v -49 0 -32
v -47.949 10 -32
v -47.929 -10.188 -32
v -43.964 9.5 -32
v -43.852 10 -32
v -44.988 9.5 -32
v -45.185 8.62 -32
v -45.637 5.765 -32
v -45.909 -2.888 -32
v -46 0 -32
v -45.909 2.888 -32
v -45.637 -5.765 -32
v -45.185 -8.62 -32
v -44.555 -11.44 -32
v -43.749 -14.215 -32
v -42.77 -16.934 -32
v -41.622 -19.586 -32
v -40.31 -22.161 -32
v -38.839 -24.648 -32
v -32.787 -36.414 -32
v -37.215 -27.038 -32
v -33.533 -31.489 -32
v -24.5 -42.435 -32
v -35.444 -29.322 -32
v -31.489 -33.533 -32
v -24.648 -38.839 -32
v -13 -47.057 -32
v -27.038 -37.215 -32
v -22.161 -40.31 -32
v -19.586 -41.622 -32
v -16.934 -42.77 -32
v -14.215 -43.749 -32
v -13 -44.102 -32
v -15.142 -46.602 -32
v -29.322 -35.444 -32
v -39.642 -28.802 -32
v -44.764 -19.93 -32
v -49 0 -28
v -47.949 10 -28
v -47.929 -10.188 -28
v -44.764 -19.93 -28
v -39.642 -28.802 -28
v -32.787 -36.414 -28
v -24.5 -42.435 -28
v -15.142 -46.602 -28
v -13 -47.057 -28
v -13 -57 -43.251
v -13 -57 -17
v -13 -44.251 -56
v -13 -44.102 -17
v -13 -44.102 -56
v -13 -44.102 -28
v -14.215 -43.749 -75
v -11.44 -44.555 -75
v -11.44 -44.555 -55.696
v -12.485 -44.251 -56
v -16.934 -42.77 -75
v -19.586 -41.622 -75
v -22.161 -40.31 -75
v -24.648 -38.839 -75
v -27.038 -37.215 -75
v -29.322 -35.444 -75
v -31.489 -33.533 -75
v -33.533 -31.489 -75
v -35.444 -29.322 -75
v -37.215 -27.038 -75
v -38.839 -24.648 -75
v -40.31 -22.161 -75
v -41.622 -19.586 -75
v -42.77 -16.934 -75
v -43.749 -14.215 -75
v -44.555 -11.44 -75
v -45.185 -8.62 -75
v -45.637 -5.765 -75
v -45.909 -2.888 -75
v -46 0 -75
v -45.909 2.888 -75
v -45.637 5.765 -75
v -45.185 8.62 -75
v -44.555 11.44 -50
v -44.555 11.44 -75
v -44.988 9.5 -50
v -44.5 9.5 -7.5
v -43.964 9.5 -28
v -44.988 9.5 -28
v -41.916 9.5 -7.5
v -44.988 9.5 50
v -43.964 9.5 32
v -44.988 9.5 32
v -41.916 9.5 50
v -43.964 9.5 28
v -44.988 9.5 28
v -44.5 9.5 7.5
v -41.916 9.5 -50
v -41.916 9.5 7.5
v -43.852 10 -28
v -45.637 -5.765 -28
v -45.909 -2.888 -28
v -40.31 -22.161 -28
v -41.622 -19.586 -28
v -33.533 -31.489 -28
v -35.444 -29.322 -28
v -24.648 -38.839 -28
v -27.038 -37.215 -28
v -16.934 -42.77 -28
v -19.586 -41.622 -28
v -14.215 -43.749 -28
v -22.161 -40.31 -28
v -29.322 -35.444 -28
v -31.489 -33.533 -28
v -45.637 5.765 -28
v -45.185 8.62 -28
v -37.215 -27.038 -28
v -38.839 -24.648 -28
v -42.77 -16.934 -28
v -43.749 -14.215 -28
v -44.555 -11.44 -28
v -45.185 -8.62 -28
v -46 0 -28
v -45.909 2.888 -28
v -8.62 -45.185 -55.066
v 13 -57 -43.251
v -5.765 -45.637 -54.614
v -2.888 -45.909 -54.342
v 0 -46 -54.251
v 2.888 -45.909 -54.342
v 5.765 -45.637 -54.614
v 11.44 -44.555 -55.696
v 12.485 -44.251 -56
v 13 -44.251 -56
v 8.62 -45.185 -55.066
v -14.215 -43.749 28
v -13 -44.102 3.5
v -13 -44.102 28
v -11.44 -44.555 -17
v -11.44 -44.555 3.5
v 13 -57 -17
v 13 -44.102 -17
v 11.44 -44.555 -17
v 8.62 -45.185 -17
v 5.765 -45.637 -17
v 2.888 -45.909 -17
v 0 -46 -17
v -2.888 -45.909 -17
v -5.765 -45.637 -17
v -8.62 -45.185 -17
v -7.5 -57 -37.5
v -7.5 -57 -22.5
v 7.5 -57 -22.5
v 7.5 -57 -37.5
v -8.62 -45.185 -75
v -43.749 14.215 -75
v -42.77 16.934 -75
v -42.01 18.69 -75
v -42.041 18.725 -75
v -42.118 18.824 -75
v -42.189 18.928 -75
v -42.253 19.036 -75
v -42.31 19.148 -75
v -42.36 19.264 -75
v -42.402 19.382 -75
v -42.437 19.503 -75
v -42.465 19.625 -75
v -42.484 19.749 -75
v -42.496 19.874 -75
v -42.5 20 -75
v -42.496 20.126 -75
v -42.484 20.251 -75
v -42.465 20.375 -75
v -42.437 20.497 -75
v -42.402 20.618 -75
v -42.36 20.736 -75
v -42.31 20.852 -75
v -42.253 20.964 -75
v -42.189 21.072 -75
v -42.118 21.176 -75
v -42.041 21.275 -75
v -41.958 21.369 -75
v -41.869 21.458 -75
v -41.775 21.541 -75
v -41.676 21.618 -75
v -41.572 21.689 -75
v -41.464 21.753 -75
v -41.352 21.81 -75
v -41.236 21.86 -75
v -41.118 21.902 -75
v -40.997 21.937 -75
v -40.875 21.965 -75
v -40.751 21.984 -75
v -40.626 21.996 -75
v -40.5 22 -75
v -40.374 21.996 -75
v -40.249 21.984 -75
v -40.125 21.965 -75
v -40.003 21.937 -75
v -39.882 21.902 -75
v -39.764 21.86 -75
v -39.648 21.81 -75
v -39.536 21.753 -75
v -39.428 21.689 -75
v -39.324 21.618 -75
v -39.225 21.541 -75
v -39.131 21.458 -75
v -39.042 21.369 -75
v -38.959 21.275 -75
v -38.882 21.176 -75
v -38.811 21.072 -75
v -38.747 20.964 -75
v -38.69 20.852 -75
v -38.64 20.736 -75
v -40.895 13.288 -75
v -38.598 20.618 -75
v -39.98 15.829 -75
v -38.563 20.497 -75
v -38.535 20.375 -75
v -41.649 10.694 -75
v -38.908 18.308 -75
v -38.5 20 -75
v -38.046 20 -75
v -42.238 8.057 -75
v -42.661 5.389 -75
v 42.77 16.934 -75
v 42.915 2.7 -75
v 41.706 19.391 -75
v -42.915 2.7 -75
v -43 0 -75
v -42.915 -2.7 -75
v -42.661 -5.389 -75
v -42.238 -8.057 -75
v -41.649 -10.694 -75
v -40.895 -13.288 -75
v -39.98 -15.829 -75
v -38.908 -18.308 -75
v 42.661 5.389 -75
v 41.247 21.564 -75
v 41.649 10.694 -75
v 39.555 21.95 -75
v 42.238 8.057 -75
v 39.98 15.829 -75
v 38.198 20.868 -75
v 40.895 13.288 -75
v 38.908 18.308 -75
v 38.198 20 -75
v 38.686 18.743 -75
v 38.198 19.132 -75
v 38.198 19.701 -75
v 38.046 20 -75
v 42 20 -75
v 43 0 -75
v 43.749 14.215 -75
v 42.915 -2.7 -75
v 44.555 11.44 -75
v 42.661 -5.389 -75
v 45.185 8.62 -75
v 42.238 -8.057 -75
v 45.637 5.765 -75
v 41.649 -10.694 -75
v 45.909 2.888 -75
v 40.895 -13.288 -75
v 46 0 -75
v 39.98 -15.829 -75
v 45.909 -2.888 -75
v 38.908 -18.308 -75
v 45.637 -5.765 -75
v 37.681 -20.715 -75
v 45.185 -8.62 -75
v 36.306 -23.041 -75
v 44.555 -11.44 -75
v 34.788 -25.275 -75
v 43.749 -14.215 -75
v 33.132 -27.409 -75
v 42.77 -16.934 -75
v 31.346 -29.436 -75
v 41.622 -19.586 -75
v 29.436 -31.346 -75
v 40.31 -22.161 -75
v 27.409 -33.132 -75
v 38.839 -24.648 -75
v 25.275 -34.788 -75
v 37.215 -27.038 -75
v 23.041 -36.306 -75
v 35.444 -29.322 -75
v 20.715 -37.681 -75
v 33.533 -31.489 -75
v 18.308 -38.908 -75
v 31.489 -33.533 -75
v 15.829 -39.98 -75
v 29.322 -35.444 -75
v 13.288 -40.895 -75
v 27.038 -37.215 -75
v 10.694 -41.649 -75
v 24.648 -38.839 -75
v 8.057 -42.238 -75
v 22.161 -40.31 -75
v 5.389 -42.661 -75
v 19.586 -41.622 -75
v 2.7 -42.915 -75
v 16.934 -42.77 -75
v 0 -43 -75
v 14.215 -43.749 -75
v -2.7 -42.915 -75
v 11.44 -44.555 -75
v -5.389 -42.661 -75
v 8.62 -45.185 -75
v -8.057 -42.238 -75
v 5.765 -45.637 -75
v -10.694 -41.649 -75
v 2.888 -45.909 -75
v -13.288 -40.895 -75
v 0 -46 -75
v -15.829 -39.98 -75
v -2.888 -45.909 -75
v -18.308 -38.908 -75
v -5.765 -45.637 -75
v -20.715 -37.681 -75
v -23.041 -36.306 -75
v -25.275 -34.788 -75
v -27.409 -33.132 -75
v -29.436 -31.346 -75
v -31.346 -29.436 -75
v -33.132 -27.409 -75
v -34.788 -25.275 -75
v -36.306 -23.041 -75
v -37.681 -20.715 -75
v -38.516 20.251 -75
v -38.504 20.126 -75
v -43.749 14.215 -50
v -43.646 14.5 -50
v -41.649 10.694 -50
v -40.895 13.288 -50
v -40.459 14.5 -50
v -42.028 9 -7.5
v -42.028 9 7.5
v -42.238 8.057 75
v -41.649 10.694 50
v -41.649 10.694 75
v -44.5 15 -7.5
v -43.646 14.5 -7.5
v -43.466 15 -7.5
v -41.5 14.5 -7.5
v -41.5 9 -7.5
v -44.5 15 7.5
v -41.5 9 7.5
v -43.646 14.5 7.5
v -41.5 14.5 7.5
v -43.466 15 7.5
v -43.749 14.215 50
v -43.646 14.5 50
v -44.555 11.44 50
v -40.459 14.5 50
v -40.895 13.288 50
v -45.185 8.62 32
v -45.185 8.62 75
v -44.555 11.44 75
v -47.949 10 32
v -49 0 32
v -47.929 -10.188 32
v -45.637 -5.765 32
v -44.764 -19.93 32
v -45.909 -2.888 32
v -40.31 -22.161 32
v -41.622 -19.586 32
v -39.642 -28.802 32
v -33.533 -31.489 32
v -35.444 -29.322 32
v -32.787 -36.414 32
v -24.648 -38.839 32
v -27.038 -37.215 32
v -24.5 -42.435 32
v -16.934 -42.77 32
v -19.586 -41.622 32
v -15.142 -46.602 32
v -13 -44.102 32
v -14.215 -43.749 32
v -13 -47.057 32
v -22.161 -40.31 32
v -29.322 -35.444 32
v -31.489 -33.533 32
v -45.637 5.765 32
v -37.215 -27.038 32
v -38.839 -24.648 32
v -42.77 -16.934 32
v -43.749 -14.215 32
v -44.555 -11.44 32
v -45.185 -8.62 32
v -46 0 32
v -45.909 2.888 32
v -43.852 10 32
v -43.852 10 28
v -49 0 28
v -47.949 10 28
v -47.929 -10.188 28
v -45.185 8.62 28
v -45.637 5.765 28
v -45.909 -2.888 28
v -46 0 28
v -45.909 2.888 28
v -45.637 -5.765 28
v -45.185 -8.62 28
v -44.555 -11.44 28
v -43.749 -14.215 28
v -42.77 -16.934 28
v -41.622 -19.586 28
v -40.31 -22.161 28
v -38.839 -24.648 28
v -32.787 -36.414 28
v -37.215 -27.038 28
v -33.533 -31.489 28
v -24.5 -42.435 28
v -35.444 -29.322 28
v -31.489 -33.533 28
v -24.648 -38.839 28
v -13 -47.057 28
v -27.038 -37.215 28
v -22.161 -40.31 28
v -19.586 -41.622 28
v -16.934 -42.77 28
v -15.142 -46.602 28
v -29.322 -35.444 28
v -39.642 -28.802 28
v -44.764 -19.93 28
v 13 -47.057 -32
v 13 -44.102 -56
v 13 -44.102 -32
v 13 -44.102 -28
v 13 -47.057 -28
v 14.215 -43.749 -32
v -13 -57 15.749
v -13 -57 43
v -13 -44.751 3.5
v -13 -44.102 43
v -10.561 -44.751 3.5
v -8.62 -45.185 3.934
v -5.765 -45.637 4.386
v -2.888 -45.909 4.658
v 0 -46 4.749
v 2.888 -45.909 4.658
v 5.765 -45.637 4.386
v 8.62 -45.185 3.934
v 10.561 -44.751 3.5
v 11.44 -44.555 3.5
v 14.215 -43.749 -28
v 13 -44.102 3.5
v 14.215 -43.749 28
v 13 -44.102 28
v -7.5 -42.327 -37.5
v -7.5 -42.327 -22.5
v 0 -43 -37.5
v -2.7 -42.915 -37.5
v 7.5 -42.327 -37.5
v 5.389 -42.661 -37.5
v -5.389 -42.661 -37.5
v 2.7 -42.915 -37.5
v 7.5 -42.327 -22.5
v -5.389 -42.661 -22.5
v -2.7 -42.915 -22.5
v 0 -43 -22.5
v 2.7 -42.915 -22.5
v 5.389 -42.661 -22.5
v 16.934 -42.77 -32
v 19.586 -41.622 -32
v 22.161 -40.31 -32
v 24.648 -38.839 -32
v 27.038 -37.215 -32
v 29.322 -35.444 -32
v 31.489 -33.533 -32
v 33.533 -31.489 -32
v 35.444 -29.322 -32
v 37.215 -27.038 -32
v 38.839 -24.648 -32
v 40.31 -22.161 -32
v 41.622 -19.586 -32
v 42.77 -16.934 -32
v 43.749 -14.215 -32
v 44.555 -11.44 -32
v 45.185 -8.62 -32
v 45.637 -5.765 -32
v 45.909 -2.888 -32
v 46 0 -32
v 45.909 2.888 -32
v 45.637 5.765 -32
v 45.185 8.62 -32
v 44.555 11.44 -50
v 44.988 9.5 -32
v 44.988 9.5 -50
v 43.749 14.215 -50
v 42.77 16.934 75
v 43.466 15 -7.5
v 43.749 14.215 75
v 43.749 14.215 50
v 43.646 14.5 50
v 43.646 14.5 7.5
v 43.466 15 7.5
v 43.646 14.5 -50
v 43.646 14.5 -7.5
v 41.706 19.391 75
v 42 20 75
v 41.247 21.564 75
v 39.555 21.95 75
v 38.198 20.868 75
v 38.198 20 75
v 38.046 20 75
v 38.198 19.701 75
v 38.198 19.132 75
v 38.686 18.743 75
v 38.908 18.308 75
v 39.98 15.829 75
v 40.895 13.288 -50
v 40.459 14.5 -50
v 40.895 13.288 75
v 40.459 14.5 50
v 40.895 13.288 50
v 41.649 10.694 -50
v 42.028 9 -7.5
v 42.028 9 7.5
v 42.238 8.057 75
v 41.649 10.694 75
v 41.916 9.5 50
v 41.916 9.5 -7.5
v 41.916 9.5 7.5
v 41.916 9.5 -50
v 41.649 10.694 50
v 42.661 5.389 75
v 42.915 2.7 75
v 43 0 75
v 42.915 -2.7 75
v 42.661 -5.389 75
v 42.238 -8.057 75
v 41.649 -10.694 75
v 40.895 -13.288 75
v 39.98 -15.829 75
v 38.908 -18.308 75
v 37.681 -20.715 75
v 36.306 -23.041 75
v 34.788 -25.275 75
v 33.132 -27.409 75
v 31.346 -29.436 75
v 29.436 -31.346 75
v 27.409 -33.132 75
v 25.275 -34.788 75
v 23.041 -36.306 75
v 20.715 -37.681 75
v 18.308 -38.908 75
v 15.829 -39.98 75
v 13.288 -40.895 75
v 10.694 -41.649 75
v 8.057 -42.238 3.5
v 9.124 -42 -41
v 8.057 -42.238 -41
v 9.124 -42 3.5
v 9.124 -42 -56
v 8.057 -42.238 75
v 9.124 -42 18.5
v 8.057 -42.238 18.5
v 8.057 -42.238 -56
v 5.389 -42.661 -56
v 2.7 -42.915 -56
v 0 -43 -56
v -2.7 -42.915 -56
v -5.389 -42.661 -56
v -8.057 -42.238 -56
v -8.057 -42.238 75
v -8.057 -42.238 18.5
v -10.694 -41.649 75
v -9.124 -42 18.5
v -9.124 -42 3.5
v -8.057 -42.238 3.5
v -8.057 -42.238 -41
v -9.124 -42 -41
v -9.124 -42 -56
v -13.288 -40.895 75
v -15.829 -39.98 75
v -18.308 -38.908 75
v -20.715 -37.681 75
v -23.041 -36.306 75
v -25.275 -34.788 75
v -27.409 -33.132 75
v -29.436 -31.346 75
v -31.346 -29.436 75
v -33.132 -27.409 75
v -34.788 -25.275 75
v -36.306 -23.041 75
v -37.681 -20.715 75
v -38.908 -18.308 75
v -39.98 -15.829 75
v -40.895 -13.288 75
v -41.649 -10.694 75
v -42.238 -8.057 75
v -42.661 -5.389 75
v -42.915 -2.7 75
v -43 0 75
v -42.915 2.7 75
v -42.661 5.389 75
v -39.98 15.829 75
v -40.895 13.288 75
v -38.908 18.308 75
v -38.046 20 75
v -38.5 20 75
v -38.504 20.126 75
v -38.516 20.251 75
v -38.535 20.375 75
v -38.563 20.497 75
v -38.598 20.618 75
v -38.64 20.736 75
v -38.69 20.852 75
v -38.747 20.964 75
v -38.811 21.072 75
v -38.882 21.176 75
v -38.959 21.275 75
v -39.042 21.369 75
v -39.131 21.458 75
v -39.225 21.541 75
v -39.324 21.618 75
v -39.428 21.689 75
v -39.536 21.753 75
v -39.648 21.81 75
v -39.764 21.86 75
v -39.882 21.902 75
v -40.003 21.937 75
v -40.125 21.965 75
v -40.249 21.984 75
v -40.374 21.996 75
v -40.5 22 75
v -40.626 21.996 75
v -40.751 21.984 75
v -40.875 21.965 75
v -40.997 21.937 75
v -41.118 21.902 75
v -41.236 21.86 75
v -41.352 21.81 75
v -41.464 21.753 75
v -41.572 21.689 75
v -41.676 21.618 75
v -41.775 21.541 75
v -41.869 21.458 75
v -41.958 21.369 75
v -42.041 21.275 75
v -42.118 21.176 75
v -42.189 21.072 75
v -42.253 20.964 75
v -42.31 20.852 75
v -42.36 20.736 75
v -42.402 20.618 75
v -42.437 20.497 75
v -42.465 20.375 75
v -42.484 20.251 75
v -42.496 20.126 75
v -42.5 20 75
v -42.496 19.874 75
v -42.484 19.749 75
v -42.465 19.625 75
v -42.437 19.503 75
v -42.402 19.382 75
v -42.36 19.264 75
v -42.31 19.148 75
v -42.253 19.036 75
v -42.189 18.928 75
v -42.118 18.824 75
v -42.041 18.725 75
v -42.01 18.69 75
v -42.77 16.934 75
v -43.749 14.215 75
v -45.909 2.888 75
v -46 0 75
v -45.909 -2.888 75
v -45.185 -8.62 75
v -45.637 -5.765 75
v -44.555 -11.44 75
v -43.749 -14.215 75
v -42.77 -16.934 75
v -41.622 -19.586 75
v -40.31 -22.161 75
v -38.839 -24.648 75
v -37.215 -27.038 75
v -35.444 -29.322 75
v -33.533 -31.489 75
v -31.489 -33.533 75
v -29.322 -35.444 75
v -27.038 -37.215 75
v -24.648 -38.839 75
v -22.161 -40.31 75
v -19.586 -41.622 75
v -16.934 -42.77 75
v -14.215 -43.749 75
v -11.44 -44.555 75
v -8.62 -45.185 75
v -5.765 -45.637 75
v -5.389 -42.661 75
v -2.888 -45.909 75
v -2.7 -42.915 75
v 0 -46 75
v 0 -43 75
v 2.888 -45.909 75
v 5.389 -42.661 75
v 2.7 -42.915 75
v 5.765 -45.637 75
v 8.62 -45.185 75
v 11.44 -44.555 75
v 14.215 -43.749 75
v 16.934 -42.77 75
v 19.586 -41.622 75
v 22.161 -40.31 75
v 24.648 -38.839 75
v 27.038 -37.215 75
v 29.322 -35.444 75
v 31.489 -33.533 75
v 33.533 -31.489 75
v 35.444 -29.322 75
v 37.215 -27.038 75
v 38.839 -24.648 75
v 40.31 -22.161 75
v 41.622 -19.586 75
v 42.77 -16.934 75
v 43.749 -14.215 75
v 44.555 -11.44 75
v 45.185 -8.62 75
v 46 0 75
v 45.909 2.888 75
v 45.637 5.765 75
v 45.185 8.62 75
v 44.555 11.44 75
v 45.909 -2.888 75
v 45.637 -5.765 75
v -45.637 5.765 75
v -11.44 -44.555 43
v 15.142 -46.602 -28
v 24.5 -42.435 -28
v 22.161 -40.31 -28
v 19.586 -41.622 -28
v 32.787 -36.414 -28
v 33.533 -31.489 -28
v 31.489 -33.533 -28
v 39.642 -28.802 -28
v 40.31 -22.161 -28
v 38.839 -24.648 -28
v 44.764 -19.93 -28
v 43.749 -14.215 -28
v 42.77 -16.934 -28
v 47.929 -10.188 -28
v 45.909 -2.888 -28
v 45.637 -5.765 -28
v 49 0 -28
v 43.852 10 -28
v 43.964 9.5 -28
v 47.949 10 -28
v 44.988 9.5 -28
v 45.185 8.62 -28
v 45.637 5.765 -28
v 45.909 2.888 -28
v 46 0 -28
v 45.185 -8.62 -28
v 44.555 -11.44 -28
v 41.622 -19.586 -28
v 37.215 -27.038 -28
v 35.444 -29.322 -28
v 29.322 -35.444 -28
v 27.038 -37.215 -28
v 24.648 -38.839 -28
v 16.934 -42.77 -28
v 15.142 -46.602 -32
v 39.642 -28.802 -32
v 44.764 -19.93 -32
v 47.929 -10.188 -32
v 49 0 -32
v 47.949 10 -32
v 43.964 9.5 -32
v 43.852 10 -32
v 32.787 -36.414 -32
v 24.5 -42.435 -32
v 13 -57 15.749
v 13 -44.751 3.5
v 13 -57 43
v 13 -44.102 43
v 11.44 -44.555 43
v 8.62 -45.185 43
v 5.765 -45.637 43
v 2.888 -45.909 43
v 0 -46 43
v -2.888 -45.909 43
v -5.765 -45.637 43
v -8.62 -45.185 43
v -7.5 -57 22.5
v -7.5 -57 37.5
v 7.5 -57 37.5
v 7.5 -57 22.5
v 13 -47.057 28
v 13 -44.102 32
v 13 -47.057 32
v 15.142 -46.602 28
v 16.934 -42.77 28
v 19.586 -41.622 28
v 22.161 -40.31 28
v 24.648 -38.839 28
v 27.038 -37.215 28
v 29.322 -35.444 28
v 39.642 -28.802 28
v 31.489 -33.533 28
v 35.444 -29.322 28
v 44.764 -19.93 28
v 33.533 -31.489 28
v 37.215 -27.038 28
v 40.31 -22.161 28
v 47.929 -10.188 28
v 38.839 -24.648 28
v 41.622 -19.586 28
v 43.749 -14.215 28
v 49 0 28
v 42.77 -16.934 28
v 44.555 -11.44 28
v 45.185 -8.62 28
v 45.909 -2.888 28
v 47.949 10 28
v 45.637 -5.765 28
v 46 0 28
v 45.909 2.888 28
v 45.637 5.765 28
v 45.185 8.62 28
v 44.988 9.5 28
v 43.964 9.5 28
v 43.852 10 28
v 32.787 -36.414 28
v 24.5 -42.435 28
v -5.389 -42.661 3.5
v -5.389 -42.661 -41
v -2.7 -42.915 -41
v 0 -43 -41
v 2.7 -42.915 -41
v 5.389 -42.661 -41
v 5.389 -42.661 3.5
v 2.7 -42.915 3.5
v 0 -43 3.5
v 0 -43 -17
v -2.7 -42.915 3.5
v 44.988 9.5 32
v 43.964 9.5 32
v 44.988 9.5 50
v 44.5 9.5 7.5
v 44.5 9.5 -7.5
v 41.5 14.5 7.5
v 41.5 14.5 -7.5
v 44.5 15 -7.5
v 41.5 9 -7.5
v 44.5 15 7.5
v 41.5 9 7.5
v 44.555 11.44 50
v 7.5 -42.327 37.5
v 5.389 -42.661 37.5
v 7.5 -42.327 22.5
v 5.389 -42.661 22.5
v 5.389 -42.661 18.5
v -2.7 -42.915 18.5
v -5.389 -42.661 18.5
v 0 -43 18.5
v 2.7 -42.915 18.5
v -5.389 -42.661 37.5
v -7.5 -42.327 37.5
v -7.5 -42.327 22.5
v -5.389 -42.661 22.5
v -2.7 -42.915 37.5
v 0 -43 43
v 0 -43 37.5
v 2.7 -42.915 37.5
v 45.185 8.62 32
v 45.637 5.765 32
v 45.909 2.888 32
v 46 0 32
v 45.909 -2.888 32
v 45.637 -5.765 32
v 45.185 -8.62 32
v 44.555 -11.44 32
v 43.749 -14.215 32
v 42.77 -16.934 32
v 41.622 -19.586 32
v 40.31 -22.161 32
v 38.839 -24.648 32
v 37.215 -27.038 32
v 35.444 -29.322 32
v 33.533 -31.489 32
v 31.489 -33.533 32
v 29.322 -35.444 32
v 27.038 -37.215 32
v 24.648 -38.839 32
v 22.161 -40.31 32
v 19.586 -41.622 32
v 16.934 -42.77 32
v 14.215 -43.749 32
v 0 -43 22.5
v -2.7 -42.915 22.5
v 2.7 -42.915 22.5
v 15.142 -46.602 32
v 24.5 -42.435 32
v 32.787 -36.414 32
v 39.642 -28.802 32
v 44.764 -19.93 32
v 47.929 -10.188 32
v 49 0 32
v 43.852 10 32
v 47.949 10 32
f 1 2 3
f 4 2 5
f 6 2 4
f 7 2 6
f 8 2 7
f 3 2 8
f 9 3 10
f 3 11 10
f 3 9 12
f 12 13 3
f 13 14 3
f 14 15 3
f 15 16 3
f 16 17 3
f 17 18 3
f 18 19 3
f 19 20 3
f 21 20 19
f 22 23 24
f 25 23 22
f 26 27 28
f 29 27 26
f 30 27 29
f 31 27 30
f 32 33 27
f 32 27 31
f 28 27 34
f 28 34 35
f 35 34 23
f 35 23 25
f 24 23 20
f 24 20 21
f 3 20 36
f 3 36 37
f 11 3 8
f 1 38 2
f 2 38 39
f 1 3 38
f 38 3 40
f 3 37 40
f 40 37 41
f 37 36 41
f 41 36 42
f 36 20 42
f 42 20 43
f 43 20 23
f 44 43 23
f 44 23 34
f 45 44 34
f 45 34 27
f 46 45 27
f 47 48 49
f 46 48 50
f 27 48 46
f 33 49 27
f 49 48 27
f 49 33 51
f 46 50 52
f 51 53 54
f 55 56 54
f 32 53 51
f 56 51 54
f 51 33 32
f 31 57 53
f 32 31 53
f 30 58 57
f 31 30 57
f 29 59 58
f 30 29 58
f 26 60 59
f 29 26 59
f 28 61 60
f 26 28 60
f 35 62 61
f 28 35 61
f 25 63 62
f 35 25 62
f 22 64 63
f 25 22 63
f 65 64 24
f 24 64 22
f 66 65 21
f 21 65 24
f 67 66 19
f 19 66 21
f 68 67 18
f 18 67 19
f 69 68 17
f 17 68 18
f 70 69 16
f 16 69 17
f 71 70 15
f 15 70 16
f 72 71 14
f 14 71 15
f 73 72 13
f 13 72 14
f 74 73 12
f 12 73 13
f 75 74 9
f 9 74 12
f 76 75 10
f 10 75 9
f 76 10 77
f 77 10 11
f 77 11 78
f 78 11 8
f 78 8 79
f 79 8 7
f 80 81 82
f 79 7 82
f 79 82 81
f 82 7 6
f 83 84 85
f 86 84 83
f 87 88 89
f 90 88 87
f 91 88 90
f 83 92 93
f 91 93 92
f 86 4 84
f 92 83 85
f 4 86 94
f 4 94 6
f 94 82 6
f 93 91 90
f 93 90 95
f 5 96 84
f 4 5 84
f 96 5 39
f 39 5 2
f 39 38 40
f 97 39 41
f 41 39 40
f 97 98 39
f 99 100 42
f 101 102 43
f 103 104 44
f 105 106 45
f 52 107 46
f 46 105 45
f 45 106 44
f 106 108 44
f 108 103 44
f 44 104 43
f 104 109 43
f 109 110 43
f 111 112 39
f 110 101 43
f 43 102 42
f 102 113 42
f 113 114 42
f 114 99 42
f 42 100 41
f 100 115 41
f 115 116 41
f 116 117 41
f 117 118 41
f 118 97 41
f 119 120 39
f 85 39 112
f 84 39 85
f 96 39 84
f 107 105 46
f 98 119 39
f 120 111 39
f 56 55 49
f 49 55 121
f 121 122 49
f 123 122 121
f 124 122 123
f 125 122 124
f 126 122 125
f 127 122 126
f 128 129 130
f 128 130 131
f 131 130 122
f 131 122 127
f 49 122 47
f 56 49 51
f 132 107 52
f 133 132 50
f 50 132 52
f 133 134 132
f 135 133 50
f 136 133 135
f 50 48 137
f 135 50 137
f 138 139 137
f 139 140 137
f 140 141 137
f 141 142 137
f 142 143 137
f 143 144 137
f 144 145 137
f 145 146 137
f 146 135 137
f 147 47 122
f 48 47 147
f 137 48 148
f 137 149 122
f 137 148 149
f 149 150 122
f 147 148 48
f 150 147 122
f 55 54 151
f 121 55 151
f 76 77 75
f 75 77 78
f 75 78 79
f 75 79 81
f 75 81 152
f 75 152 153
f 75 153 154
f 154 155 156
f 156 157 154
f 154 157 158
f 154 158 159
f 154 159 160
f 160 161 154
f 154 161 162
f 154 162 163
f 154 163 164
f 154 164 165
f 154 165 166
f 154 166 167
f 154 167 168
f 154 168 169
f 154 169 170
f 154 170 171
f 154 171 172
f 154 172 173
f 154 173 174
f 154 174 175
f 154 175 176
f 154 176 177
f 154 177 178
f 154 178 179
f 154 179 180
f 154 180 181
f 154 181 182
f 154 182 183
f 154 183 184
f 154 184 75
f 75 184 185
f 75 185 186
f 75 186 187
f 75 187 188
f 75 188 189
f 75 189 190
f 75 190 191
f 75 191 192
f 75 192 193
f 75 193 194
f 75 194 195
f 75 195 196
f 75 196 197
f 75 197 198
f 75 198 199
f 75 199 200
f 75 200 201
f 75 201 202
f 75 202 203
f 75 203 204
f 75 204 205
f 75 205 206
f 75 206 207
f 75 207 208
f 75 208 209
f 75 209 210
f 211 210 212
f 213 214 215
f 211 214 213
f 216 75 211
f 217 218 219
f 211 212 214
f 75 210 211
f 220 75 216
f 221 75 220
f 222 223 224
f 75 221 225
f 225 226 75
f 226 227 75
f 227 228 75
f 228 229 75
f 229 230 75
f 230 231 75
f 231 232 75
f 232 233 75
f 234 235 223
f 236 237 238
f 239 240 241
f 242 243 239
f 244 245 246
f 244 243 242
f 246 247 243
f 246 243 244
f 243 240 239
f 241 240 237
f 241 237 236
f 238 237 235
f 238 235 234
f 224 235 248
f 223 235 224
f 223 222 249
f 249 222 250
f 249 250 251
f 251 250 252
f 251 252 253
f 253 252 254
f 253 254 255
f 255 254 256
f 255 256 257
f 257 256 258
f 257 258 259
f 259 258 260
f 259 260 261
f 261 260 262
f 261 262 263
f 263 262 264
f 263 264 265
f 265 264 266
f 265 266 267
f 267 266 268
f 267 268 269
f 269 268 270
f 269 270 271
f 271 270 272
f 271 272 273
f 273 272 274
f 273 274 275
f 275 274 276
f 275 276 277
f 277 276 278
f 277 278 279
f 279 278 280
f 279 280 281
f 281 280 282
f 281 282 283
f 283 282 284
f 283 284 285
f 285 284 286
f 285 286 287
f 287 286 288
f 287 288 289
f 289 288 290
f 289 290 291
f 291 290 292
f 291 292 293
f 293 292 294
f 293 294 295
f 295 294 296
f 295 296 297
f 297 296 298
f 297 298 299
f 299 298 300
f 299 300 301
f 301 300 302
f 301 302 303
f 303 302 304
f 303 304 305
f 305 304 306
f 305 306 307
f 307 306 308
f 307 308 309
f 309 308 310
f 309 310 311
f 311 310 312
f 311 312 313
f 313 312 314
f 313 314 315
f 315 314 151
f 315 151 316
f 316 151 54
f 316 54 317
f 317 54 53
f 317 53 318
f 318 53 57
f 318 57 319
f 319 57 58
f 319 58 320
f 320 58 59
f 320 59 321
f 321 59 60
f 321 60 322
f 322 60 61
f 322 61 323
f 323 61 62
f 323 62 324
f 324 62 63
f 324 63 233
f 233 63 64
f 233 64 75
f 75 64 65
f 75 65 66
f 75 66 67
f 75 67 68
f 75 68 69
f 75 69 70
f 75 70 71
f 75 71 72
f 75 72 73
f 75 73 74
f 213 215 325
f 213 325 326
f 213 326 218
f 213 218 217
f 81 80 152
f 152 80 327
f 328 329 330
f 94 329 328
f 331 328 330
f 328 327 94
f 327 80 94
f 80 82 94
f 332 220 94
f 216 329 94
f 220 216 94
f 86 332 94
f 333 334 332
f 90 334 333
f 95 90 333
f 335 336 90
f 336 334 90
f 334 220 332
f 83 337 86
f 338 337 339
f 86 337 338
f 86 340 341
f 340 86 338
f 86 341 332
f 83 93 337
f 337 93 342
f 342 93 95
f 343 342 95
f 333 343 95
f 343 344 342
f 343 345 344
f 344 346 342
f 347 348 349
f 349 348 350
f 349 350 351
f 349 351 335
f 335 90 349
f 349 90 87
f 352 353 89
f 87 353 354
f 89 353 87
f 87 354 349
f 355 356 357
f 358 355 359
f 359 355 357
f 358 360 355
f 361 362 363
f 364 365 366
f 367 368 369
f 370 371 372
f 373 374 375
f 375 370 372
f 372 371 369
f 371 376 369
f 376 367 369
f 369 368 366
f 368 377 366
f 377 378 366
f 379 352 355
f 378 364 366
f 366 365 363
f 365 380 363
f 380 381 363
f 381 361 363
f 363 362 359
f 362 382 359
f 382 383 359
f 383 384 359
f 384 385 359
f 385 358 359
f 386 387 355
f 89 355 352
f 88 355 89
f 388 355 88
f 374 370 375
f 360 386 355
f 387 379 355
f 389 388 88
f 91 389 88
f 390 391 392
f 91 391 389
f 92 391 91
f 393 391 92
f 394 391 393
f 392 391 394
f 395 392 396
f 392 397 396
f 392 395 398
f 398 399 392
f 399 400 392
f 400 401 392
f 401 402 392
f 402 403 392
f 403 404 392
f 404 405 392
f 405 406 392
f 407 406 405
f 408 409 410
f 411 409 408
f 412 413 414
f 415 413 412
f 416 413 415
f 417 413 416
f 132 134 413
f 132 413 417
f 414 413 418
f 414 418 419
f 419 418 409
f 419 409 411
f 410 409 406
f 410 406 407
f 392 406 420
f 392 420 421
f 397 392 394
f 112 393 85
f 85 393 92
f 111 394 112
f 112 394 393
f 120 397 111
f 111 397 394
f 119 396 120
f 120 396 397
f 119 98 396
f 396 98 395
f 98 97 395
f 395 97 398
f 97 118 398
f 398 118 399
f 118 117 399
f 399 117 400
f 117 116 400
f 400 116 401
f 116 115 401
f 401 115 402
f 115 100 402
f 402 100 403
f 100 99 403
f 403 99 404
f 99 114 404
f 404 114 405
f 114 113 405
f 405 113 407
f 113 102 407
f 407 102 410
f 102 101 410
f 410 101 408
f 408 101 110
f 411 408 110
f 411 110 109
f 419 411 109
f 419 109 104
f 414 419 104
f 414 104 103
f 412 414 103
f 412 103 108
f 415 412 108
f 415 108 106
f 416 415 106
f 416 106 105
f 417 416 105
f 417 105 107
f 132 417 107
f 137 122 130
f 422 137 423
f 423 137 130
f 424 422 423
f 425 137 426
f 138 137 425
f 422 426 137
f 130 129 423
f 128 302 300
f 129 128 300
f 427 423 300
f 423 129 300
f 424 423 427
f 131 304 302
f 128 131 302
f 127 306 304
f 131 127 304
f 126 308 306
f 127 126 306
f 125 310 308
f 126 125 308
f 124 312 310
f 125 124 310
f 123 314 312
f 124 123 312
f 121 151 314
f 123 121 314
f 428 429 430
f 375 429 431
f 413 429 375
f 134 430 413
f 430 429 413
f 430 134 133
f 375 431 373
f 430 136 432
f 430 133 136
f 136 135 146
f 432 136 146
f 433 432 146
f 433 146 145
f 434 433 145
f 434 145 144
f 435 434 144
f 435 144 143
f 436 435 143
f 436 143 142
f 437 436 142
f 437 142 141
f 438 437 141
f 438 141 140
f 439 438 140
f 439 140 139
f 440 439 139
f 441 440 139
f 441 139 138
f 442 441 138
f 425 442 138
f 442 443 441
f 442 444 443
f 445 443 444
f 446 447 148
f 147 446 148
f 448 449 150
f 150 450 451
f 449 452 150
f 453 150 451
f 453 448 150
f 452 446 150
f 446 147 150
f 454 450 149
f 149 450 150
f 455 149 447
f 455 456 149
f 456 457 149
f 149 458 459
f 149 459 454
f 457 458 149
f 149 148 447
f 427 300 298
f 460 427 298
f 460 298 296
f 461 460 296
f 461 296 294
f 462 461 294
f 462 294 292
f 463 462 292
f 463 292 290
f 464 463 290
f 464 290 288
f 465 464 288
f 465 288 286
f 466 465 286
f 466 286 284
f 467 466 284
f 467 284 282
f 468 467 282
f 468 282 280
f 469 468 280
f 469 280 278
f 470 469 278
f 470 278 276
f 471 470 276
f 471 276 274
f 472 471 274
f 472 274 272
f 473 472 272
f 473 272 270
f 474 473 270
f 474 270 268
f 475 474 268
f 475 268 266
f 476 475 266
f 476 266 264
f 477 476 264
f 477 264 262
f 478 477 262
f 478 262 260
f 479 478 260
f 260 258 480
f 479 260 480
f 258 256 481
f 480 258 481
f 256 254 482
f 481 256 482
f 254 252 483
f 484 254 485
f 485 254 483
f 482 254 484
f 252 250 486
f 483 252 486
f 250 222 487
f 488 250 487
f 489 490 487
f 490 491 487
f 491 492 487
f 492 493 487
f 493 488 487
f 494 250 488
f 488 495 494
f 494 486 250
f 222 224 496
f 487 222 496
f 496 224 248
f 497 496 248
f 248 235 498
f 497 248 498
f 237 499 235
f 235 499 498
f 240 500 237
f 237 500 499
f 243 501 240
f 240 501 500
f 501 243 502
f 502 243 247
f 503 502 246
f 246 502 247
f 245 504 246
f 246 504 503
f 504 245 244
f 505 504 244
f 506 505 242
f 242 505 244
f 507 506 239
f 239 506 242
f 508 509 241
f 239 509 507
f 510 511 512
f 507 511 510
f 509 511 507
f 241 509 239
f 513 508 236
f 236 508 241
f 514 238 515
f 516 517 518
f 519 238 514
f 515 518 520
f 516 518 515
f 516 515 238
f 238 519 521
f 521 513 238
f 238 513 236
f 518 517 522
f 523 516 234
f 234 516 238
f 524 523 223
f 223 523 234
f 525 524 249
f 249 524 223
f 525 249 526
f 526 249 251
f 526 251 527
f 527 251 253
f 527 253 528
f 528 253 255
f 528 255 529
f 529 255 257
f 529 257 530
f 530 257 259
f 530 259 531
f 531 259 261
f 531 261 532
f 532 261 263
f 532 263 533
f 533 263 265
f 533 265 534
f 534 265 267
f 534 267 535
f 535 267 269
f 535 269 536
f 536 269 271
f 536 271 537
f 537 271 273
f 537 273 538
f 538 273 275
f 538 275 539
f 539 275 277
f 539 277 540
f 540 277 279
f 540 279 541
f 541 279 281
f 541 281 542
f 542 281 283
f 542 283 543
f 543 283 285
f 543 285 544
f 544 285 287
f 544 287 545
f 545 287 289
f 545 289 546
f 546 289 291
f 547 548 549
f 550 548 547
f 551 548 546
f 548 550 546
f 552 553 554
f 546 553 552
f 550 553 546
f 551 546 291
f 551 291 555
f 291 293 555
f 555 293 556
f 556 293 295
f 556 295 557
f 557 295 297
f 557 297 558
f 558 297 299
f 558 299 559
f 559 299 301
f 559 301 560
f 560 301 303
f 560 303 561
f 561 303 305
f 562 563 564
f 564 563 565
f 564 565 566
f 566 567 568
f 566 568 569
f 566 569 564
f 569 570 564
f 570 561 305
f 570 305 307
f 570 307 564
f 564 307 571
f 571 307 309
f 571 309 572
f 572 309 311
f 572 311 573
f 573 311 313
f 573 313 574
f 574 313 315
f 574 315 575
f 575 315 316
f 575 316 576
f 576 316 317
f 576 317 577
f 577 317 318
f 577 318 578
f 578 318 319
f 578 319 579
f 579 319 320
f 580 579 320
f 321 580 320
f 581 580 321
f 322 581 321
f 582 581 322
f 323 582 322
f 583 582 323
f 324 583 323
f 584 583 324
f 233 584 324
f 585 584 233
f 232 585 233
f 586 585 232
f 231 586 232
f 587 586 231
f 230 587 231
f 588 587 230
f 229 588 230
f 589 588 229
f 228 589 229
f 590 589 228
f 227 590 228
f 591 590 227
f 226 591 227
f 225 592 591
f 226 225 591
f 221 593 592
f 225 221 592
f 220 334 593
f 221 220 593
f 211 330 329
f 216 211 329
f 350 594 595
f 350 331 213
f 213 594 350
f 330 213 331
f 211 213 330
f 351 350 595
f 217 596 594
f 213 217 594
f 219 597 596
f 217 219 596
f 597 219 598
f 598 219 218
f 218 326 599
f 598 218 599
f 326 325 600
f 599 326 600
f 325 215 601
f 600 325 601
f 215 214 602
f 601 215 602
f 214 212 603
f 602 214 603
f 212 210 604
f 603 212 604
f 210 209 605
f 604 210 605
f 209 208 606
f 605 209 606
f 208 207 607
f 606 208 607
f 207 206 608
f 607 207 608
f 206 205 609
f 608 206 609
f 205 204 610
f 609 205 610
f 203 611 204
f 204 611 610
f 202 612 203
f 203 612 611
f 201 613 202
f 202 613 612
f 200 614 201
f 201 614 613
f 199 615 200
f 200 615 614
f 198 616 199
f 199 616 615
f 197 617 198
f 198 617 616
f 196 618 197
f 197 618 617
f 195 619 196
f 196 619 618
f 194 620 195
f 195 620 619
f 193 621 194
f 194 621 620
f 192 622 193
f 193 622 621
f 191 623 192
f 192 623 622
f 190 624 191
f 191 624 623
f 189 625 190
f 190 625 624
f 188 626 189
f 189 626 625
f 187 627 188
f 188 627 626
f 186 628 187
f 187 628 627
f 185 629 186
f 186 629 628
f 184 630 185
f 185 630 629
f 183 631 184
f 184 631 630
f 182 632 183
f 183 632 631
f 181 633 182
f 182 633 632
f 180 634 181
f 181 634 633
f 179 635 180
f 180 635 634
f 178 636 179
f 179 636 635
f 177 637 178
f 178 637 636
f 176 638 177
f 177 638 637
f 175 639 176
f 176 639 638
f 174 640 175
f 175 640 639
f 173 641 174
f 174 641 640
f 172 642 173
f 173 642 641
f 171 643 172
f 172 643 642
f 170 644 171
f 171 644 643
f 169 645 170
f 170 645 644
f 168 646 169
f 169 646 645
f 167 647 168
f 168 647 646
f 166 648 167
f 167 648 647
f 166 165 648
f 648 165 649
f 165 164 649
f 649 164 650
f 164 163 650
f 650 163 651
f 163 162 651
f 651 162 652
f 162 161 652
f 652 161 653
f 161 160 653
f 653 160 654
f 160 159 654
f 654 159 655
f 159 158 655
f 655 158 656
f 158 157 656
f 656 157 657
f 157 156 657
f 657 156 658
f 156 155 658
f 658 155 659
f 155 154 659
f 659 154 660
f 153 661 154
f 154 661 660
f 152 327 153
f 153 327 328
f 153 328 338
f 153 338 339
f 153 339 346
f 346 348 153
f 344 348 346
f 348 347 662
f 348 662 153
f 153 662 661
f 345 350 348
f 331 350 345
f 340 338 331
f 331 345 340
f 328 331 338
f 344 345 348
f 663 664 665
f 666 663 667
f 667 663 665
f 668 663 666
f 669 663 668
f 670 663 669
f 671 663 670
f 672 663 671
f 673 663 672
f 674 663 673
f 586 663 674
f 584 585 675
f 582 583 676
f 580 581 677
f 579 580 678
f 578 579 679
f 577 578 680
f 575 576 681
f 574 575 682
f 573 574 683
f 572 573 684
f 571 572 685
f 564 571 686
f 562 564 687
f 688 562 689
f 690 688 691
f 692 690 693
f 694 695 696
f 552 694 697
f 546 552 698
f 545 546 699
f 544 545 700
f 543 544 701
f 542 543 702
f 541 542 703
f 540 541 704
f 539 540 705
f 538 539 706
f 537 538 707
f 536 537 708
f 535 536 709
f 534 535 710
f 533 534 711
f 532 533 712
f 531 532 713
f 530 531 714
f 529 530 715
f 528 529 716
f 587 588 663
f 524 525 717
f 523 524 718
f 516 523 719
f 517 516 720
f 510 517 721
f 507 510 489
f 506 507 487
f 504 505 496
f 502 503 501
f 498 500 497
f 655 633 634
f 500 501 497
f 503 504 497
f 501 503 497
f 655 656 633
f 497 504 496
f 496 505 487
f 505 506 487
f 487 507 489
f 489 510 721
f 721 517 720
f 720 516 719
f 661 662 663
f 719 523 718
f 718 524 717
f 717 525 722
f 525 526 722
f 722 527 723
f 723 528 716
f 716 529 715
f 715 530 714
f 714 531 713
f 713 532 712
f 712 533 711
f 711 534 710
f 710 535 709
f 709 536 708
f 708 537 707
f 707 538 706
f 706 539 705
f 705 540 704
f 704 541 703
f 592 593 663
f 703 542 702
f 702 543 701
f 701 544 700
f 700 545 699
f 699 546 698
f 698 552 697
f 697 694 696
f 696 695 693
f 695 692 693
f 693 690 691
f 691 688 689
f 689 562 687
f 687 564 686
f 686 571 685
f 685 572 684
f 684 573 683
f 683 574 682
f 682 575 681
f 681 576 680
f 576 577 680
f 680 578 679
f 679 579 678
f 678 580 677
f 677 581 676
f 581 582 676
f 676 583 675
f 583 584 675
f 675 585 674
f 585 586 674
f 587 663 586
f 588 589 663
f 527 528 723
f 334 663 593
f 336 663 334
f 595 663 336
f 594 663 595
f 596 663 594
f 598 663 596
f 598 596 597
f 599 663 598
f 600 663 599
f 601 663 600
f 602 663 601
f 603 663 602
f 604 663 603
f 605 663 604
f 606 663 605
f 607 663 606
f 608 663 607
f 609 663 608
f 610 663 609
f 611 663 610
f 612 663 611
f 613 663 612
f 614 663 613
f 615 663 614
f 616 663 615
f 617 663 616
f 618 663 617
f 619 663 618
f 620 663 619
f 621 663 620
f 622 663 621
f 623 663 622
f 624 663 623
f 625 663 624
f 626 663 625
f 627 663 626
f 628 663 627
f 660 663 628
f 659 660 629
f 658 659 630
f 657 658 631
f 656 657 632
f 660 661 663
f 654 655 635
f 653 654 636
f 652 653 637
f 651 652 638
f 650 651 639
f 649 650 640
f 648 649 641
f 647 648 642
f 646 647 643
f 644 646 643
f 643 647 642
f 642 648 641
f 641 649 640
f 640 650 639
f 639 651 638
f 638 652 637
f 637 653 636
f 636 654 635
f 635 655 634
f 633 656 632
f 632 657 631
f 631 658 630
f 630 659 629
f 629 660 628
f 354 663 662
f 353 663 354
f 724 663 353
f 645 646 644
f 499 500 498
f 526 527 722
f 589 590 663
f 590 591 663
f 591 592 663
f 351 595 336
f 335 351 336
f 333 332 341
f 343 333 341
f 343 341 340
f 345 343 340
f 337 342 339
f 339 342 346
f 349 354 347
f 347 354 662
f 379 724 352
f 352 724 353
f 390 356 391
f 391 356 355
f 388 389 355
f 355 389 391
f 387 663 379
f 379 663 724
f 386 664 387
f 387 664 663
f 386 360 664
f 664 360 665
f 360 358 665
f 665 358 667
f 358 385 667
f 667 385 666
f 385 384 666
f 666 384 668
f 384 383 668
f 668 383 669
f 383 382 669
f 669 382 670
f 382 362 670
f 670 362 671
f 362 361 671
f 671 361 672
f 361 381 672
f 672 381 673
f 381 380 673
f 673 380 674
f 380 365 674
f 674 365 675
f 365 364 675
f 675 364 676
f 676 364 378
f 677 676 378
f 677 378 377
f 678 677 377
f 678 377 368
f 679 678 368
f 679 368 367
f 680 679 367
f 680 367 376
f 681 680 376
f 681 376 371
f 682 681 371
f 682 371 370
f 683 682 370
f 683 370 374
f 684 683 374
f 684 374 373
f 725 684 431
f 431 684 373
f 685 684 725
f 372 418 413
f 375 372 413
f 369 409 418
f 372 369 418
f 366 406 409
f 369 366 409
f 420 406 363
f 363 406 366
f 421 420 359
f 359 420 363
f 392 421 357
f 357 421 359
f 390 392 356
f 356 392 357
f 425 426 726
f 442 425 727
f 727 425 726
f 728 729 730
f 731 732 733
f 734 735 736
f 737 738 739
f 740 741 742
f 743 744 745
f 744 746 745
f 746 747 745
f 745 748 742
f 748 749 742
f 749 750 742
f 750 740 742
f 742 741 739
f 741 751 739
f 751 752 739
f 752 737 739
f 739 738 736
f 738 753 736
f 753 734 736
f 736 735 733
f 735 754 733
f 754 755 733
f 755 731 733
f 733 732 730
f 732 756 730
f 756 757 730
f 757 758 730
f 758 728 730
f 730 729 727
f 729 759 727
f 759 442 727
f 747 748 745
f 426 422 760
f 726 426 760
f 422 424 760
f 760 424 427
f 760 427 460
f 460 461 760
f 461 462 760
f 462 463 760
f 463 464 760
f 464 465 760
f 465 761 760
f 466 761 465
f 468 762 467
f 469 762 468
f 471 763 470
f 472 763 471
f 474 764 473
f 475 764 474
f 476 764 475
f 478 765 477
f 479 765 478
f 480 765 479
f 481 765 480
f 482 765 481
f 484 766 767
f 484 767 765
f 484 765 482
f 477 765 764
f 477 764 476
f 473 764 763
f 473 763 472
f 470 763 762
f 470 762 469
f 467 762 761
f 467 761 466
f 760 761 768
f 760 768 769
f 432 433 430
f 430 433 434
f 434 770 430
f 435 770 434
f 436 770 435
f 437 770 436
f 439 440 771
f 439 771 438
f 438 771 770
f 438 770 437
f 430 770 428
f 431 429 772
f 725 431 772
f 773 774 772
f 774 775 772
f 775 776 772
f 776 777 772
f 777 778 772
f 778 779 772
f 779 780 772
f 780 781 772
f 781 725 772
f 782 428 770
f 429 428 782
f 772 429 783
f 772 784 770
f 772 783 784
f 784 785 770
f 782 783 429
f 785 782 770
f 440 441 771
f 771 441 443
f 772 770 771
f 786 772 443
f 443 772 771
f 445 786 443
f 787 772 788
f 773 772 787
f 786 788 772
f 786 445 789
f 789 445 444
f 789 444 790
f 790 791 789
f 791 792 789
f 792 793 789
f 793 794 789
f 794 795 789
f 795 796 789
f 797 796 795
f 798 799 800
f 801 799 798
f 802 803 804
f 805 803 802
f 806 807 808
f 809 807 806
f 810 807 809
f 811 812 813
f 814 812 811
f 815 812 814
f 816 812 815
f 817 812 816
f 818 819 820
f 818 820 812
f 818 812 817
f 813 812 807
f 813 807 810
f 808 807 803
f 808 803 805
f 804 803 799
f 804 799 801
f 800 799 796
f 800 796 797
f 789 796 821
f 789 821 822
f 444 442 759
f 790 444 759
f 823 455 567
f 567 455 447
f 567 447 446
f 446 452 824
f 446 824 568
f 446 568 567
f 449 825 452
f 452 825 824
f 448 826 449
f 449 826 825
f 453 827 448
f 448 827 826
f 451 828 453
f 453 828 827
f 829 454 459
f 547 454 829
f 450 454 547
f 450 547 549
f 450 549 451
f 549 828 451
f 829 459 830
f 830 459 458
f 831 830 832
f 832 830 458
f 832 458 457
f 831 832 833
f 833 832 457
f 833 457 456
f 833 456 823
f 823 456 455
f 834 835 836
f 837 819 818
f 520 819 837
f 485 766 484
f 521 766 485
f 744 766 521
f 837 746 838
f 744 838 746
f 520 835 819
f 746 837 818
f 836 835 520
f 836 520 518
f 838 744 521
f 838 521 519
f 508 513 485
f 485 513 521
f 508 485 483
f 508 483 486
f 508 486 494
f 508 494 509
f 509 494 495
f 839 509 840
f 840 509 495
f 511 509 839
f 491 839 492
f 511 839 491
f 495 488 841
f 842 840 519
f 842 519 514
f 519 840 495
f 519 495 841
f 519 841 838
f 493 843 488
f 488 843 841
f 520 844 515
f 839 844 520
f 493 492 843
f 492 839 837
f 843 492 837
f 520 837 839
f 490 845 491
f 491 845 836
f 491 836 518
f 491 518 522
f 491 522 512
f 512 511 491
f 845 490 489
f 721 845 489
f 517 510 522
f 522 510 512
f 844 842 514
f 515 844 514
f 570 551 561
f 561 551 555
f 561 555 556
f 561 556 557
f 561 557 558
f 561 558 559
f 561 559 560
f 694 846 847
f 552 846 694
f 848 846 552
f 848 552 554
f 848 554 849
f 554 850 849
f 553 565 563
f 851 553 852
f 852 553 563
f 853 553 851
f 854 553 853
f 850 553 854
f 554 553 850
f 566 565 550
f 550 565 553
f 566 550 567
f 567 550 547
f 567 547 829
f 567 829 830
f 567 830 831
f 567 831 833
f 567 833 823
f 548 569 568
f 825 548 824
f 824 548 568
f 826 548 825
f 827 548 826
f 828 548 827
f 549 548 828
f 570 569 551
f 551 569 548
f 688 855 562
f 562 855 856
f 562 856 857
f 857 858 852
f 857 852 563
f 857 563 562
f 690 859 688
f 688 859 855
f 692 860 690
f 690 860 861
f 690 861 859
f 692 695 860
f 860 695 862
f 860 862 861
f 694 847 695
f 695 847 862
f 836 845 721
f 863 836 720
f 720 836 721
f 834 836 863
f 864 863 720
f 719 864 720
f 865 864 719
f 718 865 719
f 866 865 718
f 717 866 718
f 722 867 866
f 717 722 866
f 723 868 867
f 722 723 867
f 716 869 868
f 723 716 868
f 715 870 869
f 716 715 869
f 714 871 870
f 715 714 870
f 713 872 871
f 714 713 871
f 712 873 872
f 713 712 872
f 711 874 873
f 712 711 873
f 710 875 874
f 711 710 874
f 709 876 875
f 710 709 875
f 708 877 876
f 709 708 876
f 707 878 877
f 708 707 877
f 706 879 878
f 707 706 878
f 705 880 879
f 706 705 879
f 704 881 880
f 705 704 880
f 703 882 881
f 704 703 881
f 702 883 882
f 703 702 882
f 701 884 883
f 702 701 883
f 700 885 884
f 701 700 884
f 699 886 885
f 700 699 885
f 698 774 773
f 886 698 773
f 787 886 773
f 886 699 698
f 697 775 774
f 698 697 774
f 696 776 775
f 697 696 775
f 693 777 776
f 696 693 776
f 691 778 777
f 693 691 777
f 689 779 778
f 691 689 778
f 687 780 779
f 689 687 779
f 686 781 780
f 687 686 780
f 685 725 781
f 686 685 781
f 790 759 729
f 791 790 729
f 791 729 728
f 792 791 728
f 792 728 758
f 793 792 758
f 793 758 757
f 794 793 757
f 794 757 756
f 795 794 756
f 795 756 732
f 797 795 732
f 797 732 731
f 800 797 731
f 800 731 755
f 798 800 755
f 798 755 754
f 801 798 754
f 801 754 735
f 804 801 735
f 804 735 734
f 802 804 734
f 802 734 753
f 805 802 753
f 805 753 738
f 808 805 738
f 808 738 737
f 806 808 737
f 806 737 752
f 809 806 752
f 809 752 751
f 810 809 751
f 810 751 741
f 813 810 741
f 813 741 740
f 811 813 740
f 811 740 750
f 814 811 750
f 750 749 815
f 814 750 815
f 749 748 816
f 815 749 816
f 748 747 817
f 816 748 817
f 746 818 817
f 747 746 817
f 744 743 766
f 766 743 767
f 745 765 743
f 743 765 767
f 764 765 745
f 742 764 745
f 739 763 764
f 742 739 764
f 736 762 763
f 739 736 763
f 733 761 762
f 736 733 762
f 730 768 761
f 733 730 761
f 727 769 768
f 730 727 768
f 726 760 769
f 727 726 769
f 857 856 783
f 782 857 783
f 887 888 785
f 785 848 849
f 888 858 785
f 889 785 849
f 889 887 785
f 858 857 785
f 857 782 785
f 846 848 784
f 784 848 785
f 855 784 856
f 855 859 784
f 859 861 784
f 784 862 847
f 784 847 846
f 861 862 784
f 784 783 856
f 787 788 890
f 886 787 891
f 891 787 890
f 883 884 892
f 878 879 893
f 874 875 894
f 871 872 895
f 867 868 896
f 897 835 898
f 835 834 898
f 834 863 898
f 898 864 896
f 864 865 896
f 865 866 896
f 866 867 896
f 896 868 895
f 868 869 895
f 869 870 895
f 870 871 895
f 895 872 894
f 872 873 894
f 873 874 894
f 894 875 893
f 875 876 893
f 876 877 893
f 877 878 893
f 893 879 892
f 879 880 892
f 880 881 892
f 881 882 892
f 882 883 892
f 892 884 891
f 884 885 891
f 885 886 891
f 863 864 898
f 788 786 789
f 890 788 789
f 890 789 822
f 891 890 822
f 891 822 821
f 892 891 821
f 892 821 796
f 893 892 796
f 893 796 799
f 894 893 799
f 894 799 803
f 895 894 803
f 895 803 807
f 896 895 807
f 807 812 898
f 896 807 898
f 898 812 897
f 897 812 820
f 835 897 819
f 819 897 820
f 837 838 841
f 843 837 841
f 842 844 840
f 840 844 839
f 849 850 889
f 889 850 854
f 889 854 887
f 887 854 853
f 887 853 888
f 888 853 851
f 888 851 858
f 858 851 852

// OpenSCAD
union() {

union() {
//pro posílení zesilenych ctvercu=aby je bylo mozno tisknout


union() {
//pro posileni pruvleku pro pasku

difference() {
//difference pro popruh

difference() {
//difference pro krychli na odečtení

union() {

union() {

//zakl rukojet
difference() {
        cylinder (h = 150, r=46, center = true, $fn=100);
// odecet vnitrku
      
translate([0,0,0])  rotate ([0,0,0]) cylinder (h = 150, r=43, center = true, $fn=100);
//posun o 20 do boku delka 300 prumer 95- odecita se od toho nahore
translate([0,95,0])  rotate ([0,0,0]) cube(size = [200,150,150], center = true, $fn=100);
//odecet pomoci krychle
}

translate([40,20,0]) cylinder (h = 150, r=2, center = true);
//leve zaobleni

translate([-40.5,20,0]) cylinder (h = 150, r=2, center = true, $fn=100);
//prave zaobleni
// zaobleni okraju
}

#translate([0,-50,-30]) scale([1,1,1]) cube(size = [26,14,26], center = true);
//-95 posunutí k okrajum na stěně válce //15 výška drž/
//vytvoreni spaliku

translate([0,-50,30]) scale([1,1,1]) cube(size = [26,14,26], center = true);
}

//rotate ([90,0,0]) translate([0,-30,0]) cylinder (h = 400, r=17, center = true, $fn=100);

//otovry na odecteni pro uchyty
translate([0,-50,30]) scale([1,1,1]) cube(size = [15,20,15], center = true);
// odecet ctverce pro uchytky

//rotate ([90,0,0]) translate([0,30,0]) cylinder (h = 400, r=17, center = true, $fn=100);
// 17 je prumer pro pripojeni drzaku
//odecty pro díry na prostrceni uchytek
translate([0,-50,-30]) scale([1,1,1]) cube(size = [15,20,15], center = true);
//20 je vnitrni prumer pro drzak

}
#rotate ([90,0,0]) translate([80,0,-12]) scale([1,1,1]) cube(size = [100,100,5], center = true);
//leva vysec pro popruh
rotate ([90,0,0]) translate([-80,0,-12]) scale([1,1,1]) cube(size = [100,100,5], center = true);
// prava vysec pro popruh
}



rotate ([90,0,0]) translate([-43,0,-12]) scale([1,1,1]) cube(size = [3,15,6], center = true);
// prava vysec pro popruh
rotate ([90,0,0]) translate([43,0,-12]) scale([1,1,1]) cube(size = [3,15,6], center = true);
}

/////////////////////////////////////////////////////////////////////////////////////////////
difference () {
// odecet 

// 95 112 17
translate([0,-49.5,-48.5])cube(size = [26,15,15], center = true);
//levo,pravo/ke mne, ode mne//nahoru,dolu
//krychle pro skoseni
translate([0,-58,-67])rotate ([45,0,0])cube(size = [35,35,35], center = true);
}
//prvni krychle a trojuhelnik
/////////////////////////////////////

//////////////////////////////////////////////////////////////////////////////////////////////
difference () {
// odecet 
translate([0,-49.5,11])cube(size = [26,15,15], center = true);
//levo,pravo/ke mne, ode mne//nahoru,dolu
//krychle pro skoseni
#translate([0,-58,-8])rotate ([45,0,0])cube(size = [35,35,35], center = true);
}

// 51 a 67 posouvani k a od valce kvadr a jeho seriznuti
//////////////////////////////////////////////////////////////////////////////////////////////
//druha krychle a trojuhelnik
}
///////////////////////////////////////////////////////////////
difference(){
//difference pro zebrovani
translate([0,0,30])cylinder (h = 4, r = 49, center = true);
//r je tloustka žebra

///////
translate([0,0,0])  rotate ([0,0,0]) cylinder (h = 150, r=45, center = true, $fn=100);
//posun o 20 do boku delka 300 prumer 95- odecita se od toho nahore
//odecte vnitrek valce
translate([0,95,0])  rotate ([0,0,0]) cube(size = [200,170,150], center = true, $fn=100);
//odecet pomoci krychle- 2/2 kruhu
translate([0,-50,30]) scale([1,1,1]) cube(size = [20,20,20], center = true);
// odecte vysec pro osazeni drzaku
}
////////////

///////////////////////////////////////////////////////////////
difference(){
//difference pro zebrovani
translate([0,0,-30])cylinder (h = 4, r = 49, center = true);
//r je tloustka žebra

///////
translate([0,0,0])  rotate ([0,0,0]) cylinder (h = 150, r=45, center = true, $fn=100);
//posun o 20 do boku delka 300 prumer 95- odecita se od toho nahore
//odecte vnitrek valce
translate([0,95,0])  rotate ([0,0,0]) cube(size = [200,170,150], center = true, $fn=100);
//odecet pomoci krychle- 2/2 kruhu
#translate([0,-50,-30]) scale([1,1,1]) cube(size = [20,20,20], center = true);
// odecte vysec pro osazeni drzaku
////////////
}

}
